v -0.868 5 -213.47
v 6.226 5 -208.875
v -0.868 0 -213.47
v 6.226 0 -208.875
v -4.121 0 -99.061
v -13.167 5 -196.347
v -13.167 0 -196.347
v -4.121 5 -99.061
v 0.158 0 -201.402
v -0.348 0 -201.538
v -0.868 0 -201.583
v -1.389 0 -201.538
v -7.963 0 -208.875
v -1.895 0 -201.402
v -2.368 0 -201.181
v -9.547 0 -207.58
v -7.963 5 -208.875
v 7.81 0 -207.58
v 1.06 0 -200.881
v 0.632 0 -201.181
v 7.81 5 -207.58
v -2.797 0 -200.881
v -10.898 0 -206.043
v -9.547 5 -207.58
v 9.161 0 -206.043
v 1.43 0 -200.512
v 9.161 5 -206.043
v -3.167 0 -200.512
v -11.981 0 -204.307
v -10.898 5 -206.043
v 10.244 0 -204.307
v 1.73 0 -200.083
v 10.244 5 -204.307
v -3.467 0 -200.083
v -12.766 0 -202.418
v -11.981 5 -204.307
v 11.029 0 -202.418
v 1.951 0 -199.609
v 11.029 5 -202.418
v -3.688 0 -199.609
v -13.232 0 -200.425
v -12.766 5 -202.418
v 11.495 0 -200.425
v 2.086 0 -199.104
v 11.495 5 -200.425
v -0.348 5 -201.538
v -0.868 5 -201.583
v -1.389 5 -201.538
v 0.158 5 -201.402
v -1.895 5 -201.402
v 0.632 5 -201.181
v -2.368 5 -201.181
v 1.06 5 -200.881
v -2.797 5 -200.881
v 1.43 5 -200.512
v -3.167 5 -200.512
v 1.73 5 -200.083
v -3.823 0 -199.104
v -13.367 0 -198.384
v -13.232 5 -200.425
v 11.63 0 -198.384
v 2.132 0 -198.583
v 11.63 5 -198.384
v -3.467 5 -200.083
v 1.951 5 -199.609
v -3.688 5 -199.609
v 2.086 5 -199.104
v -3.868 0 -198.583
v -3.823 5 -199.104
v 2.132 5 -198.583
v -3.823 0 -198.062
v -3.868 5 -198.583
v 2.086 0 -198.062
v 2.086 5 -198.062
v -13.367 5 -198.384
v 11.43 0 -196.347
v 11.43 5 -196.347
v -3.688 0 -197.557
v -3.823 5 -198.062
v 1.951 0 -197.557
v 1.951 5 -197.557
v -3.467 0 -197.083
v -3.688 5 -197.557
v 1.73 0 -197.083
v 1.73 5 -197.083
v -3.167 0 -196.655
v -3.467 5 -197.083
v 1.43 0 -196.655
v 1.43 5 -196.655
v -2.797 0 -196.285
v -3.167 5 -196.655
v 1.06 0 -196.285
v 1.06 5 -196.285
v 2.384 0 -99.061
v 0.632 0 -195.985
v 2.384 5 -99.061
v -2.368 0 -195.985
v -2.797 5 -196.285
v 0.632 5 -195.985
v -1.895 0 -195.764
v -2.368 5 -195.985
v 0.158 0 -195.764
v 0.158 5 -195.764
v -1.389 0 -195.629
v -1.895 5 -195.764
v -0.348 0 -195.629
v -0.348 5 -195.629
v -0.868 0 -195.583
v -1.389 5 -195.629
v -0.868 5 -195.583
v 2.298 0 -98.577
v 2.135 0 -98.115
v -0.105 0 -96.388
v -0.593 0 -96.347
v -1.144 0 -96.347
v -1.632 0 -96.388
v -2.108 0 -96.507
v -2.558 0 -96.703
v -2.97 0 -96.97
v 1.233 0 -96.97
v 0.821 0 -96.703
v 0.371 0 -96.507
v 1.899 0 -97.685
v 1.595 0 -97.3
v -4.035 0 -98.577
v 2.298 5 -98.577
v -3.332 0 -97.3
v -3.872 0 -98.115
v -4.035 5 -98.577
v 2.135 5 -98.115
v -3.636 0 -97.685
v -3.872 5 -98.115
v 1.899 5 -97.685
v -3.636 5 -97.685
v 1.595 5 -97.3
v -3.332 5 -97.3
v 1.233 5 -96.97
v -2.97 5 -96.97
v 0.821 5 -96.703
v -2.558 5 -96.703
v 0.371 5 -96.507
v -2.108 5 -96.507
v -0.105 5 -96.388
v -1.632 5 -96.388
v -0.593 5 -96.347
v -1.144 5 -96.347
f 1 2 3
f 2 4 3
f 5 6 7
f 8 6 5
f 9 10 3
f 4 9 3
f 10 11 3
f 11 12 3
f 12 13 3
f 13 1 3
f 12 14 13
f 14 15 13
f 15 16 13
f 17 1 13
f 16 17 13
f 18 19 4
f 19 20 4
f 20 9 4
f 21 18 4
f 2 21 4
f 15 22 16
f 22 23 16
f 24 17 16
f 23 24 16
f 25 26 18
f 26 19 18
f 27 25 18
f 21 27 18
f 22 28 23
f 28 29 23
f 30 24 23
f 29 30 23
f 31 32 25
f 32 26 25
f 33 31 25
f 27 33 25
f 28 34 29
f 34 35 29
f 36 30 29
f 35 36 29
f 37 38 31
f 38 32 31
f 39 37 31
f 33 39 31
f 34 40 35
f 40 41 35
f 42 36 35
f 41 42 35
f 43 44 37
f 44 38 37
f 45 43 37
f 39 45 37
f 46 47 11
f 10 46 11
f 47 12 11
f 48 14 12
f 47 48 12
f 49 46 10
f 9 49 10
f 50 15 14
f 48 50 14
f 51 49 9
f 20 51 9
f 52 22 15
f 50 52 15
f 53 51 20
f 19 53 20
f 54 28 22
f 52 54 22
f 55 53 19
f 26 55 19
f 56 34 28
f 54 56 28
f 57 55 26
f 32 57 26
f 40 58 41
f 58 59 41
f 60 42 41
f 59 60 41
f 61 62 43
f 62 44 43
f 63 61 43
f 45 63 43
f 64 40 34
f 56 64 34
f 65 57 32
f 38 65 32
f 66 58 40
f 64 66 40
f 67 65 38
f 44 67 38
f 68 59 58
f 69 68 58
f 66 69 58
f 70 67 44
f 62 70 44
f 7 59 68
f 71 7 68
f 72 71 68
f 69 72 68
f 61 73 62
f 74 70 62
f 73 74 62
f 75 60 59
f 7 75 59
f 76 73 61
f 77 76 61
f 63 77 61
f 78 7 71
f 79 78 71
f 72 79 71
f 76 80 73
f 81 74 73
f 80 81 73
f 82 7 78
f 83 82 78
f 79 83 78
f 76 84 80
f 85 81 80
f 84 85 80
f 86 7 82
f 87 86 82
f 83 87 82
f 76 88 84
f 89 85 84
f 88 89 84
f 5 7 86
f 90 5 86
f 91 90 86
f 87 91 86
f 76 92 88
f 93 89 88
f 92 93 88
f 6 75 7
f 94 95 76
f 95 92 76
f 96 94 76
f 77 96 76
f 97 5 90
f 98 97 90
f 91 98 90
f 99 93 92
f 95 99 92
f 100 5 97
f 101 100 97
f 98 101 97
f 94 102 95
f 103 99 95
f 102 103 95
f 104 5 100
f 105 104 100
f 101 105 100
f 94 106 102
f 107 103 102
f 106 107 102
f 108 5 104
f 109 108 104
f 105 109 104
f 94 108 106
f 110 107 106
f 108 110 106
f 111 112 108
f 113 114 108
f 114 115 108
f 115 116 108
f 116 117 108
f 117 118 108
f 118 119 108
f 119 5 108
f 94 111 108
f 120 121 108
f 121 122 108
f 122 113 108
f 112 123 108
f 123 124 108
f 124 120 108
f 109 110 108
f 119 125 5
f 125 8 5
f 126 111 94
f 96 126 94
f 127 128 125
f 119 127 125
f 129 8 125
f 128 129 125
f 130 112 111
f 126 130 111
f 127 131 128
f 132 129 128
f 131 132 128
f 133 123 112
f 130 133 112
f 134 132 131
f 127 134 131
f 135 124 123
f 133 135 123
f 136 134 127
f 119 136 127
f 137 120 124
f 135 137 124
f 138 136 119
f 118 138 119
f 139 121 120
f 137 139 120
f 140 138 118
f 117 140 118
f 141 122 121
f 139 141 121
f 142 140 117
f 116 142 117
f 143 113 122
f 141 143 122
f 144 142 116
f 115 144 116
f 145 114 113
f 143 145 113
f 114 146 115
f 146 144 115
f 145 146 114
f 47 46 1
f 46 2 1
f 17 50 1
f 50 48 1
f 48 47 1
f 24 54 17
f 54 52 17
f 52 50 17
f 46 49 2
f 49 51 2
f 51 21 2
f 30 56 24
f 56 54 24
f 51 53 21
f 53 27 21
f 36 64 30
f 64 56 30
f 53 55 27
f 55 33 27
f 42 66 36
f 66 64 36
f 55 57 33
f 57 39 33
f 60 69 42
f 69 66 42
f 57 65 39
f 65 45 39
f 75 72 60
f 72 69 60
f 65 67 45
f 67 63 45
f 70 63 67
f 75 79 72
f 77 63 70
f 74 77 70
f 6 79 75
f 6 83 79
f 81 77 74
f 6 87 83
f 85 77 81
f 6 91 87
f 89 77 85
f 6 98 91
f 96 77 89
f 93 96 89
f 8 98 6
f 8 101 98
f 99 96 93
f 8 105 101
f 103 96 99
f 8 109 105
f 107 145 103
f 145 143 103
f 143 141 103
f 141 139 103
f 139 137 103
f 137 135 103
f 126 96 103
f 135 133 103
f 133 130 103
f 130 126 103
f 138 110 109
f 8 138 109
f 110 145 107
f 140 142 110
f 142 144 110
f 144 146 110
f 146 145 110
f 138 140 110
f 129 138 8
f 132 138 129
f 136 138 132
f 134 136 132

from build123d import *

# Parameters (mm, degrees)
CROQUIS1_R              = 3
SALIENTE_EXTRUIR1_DEPTH = 5
REDONDEO1_R             = 2.99


with BuildPart() as part:
    # Croquis1 → Saliente-Extruir1 (new body)
    with BuildSketch(Plane(origin=(0, 0, 0), x_dir=(1, 0, 0), z_dir=(0, 1, 0))):
        with BuildLine():
            Line((-7.962657019, 208.875039065), (-0.868497325, 213.470388318))
            Line((-0.868497325, 213.470388318), (6.225662369, 208.875039065))
            ThreePointArc((6.225662369, 208.875039065), (10.67506724, 203.378580688), (11.42992133, 196.347332315))
            Line((11.42992133, 196.347332315), (2.131502675, 96.347332315))
            Line((2.131502675, 96.347332315), (-3.868497325, 96.347332315))
            Line((-3.868497325, 96.347332315), (-13.166915979, 196.347332315))
            ThreePointArc((-13.166915979, 196.347332315), (-12.412061889, 203.378580688), (-7.962657019, 208.875039065))
        make_face()
        with Locations(Location((-0.868497325, 198.583153998, 0), (0, 0, 270))):
            Circle(CROQUIS1_R, mode=Mode.SUBTRACT)
    extrude(amount=SALIENTE_EXTRUIR1_DEPTH)

    # Redondeo1
    redondeo1_edges = [part.edges().sort_by_distance(p)[0] for p in [
        (2.131502675, 2.5, -96.347332315),
        (-3.868497325, 2.5, -96.347332315),
    ]]
    fillet(redondeo1_edges, radius=REDONDEO1_R)


solid = part.part
